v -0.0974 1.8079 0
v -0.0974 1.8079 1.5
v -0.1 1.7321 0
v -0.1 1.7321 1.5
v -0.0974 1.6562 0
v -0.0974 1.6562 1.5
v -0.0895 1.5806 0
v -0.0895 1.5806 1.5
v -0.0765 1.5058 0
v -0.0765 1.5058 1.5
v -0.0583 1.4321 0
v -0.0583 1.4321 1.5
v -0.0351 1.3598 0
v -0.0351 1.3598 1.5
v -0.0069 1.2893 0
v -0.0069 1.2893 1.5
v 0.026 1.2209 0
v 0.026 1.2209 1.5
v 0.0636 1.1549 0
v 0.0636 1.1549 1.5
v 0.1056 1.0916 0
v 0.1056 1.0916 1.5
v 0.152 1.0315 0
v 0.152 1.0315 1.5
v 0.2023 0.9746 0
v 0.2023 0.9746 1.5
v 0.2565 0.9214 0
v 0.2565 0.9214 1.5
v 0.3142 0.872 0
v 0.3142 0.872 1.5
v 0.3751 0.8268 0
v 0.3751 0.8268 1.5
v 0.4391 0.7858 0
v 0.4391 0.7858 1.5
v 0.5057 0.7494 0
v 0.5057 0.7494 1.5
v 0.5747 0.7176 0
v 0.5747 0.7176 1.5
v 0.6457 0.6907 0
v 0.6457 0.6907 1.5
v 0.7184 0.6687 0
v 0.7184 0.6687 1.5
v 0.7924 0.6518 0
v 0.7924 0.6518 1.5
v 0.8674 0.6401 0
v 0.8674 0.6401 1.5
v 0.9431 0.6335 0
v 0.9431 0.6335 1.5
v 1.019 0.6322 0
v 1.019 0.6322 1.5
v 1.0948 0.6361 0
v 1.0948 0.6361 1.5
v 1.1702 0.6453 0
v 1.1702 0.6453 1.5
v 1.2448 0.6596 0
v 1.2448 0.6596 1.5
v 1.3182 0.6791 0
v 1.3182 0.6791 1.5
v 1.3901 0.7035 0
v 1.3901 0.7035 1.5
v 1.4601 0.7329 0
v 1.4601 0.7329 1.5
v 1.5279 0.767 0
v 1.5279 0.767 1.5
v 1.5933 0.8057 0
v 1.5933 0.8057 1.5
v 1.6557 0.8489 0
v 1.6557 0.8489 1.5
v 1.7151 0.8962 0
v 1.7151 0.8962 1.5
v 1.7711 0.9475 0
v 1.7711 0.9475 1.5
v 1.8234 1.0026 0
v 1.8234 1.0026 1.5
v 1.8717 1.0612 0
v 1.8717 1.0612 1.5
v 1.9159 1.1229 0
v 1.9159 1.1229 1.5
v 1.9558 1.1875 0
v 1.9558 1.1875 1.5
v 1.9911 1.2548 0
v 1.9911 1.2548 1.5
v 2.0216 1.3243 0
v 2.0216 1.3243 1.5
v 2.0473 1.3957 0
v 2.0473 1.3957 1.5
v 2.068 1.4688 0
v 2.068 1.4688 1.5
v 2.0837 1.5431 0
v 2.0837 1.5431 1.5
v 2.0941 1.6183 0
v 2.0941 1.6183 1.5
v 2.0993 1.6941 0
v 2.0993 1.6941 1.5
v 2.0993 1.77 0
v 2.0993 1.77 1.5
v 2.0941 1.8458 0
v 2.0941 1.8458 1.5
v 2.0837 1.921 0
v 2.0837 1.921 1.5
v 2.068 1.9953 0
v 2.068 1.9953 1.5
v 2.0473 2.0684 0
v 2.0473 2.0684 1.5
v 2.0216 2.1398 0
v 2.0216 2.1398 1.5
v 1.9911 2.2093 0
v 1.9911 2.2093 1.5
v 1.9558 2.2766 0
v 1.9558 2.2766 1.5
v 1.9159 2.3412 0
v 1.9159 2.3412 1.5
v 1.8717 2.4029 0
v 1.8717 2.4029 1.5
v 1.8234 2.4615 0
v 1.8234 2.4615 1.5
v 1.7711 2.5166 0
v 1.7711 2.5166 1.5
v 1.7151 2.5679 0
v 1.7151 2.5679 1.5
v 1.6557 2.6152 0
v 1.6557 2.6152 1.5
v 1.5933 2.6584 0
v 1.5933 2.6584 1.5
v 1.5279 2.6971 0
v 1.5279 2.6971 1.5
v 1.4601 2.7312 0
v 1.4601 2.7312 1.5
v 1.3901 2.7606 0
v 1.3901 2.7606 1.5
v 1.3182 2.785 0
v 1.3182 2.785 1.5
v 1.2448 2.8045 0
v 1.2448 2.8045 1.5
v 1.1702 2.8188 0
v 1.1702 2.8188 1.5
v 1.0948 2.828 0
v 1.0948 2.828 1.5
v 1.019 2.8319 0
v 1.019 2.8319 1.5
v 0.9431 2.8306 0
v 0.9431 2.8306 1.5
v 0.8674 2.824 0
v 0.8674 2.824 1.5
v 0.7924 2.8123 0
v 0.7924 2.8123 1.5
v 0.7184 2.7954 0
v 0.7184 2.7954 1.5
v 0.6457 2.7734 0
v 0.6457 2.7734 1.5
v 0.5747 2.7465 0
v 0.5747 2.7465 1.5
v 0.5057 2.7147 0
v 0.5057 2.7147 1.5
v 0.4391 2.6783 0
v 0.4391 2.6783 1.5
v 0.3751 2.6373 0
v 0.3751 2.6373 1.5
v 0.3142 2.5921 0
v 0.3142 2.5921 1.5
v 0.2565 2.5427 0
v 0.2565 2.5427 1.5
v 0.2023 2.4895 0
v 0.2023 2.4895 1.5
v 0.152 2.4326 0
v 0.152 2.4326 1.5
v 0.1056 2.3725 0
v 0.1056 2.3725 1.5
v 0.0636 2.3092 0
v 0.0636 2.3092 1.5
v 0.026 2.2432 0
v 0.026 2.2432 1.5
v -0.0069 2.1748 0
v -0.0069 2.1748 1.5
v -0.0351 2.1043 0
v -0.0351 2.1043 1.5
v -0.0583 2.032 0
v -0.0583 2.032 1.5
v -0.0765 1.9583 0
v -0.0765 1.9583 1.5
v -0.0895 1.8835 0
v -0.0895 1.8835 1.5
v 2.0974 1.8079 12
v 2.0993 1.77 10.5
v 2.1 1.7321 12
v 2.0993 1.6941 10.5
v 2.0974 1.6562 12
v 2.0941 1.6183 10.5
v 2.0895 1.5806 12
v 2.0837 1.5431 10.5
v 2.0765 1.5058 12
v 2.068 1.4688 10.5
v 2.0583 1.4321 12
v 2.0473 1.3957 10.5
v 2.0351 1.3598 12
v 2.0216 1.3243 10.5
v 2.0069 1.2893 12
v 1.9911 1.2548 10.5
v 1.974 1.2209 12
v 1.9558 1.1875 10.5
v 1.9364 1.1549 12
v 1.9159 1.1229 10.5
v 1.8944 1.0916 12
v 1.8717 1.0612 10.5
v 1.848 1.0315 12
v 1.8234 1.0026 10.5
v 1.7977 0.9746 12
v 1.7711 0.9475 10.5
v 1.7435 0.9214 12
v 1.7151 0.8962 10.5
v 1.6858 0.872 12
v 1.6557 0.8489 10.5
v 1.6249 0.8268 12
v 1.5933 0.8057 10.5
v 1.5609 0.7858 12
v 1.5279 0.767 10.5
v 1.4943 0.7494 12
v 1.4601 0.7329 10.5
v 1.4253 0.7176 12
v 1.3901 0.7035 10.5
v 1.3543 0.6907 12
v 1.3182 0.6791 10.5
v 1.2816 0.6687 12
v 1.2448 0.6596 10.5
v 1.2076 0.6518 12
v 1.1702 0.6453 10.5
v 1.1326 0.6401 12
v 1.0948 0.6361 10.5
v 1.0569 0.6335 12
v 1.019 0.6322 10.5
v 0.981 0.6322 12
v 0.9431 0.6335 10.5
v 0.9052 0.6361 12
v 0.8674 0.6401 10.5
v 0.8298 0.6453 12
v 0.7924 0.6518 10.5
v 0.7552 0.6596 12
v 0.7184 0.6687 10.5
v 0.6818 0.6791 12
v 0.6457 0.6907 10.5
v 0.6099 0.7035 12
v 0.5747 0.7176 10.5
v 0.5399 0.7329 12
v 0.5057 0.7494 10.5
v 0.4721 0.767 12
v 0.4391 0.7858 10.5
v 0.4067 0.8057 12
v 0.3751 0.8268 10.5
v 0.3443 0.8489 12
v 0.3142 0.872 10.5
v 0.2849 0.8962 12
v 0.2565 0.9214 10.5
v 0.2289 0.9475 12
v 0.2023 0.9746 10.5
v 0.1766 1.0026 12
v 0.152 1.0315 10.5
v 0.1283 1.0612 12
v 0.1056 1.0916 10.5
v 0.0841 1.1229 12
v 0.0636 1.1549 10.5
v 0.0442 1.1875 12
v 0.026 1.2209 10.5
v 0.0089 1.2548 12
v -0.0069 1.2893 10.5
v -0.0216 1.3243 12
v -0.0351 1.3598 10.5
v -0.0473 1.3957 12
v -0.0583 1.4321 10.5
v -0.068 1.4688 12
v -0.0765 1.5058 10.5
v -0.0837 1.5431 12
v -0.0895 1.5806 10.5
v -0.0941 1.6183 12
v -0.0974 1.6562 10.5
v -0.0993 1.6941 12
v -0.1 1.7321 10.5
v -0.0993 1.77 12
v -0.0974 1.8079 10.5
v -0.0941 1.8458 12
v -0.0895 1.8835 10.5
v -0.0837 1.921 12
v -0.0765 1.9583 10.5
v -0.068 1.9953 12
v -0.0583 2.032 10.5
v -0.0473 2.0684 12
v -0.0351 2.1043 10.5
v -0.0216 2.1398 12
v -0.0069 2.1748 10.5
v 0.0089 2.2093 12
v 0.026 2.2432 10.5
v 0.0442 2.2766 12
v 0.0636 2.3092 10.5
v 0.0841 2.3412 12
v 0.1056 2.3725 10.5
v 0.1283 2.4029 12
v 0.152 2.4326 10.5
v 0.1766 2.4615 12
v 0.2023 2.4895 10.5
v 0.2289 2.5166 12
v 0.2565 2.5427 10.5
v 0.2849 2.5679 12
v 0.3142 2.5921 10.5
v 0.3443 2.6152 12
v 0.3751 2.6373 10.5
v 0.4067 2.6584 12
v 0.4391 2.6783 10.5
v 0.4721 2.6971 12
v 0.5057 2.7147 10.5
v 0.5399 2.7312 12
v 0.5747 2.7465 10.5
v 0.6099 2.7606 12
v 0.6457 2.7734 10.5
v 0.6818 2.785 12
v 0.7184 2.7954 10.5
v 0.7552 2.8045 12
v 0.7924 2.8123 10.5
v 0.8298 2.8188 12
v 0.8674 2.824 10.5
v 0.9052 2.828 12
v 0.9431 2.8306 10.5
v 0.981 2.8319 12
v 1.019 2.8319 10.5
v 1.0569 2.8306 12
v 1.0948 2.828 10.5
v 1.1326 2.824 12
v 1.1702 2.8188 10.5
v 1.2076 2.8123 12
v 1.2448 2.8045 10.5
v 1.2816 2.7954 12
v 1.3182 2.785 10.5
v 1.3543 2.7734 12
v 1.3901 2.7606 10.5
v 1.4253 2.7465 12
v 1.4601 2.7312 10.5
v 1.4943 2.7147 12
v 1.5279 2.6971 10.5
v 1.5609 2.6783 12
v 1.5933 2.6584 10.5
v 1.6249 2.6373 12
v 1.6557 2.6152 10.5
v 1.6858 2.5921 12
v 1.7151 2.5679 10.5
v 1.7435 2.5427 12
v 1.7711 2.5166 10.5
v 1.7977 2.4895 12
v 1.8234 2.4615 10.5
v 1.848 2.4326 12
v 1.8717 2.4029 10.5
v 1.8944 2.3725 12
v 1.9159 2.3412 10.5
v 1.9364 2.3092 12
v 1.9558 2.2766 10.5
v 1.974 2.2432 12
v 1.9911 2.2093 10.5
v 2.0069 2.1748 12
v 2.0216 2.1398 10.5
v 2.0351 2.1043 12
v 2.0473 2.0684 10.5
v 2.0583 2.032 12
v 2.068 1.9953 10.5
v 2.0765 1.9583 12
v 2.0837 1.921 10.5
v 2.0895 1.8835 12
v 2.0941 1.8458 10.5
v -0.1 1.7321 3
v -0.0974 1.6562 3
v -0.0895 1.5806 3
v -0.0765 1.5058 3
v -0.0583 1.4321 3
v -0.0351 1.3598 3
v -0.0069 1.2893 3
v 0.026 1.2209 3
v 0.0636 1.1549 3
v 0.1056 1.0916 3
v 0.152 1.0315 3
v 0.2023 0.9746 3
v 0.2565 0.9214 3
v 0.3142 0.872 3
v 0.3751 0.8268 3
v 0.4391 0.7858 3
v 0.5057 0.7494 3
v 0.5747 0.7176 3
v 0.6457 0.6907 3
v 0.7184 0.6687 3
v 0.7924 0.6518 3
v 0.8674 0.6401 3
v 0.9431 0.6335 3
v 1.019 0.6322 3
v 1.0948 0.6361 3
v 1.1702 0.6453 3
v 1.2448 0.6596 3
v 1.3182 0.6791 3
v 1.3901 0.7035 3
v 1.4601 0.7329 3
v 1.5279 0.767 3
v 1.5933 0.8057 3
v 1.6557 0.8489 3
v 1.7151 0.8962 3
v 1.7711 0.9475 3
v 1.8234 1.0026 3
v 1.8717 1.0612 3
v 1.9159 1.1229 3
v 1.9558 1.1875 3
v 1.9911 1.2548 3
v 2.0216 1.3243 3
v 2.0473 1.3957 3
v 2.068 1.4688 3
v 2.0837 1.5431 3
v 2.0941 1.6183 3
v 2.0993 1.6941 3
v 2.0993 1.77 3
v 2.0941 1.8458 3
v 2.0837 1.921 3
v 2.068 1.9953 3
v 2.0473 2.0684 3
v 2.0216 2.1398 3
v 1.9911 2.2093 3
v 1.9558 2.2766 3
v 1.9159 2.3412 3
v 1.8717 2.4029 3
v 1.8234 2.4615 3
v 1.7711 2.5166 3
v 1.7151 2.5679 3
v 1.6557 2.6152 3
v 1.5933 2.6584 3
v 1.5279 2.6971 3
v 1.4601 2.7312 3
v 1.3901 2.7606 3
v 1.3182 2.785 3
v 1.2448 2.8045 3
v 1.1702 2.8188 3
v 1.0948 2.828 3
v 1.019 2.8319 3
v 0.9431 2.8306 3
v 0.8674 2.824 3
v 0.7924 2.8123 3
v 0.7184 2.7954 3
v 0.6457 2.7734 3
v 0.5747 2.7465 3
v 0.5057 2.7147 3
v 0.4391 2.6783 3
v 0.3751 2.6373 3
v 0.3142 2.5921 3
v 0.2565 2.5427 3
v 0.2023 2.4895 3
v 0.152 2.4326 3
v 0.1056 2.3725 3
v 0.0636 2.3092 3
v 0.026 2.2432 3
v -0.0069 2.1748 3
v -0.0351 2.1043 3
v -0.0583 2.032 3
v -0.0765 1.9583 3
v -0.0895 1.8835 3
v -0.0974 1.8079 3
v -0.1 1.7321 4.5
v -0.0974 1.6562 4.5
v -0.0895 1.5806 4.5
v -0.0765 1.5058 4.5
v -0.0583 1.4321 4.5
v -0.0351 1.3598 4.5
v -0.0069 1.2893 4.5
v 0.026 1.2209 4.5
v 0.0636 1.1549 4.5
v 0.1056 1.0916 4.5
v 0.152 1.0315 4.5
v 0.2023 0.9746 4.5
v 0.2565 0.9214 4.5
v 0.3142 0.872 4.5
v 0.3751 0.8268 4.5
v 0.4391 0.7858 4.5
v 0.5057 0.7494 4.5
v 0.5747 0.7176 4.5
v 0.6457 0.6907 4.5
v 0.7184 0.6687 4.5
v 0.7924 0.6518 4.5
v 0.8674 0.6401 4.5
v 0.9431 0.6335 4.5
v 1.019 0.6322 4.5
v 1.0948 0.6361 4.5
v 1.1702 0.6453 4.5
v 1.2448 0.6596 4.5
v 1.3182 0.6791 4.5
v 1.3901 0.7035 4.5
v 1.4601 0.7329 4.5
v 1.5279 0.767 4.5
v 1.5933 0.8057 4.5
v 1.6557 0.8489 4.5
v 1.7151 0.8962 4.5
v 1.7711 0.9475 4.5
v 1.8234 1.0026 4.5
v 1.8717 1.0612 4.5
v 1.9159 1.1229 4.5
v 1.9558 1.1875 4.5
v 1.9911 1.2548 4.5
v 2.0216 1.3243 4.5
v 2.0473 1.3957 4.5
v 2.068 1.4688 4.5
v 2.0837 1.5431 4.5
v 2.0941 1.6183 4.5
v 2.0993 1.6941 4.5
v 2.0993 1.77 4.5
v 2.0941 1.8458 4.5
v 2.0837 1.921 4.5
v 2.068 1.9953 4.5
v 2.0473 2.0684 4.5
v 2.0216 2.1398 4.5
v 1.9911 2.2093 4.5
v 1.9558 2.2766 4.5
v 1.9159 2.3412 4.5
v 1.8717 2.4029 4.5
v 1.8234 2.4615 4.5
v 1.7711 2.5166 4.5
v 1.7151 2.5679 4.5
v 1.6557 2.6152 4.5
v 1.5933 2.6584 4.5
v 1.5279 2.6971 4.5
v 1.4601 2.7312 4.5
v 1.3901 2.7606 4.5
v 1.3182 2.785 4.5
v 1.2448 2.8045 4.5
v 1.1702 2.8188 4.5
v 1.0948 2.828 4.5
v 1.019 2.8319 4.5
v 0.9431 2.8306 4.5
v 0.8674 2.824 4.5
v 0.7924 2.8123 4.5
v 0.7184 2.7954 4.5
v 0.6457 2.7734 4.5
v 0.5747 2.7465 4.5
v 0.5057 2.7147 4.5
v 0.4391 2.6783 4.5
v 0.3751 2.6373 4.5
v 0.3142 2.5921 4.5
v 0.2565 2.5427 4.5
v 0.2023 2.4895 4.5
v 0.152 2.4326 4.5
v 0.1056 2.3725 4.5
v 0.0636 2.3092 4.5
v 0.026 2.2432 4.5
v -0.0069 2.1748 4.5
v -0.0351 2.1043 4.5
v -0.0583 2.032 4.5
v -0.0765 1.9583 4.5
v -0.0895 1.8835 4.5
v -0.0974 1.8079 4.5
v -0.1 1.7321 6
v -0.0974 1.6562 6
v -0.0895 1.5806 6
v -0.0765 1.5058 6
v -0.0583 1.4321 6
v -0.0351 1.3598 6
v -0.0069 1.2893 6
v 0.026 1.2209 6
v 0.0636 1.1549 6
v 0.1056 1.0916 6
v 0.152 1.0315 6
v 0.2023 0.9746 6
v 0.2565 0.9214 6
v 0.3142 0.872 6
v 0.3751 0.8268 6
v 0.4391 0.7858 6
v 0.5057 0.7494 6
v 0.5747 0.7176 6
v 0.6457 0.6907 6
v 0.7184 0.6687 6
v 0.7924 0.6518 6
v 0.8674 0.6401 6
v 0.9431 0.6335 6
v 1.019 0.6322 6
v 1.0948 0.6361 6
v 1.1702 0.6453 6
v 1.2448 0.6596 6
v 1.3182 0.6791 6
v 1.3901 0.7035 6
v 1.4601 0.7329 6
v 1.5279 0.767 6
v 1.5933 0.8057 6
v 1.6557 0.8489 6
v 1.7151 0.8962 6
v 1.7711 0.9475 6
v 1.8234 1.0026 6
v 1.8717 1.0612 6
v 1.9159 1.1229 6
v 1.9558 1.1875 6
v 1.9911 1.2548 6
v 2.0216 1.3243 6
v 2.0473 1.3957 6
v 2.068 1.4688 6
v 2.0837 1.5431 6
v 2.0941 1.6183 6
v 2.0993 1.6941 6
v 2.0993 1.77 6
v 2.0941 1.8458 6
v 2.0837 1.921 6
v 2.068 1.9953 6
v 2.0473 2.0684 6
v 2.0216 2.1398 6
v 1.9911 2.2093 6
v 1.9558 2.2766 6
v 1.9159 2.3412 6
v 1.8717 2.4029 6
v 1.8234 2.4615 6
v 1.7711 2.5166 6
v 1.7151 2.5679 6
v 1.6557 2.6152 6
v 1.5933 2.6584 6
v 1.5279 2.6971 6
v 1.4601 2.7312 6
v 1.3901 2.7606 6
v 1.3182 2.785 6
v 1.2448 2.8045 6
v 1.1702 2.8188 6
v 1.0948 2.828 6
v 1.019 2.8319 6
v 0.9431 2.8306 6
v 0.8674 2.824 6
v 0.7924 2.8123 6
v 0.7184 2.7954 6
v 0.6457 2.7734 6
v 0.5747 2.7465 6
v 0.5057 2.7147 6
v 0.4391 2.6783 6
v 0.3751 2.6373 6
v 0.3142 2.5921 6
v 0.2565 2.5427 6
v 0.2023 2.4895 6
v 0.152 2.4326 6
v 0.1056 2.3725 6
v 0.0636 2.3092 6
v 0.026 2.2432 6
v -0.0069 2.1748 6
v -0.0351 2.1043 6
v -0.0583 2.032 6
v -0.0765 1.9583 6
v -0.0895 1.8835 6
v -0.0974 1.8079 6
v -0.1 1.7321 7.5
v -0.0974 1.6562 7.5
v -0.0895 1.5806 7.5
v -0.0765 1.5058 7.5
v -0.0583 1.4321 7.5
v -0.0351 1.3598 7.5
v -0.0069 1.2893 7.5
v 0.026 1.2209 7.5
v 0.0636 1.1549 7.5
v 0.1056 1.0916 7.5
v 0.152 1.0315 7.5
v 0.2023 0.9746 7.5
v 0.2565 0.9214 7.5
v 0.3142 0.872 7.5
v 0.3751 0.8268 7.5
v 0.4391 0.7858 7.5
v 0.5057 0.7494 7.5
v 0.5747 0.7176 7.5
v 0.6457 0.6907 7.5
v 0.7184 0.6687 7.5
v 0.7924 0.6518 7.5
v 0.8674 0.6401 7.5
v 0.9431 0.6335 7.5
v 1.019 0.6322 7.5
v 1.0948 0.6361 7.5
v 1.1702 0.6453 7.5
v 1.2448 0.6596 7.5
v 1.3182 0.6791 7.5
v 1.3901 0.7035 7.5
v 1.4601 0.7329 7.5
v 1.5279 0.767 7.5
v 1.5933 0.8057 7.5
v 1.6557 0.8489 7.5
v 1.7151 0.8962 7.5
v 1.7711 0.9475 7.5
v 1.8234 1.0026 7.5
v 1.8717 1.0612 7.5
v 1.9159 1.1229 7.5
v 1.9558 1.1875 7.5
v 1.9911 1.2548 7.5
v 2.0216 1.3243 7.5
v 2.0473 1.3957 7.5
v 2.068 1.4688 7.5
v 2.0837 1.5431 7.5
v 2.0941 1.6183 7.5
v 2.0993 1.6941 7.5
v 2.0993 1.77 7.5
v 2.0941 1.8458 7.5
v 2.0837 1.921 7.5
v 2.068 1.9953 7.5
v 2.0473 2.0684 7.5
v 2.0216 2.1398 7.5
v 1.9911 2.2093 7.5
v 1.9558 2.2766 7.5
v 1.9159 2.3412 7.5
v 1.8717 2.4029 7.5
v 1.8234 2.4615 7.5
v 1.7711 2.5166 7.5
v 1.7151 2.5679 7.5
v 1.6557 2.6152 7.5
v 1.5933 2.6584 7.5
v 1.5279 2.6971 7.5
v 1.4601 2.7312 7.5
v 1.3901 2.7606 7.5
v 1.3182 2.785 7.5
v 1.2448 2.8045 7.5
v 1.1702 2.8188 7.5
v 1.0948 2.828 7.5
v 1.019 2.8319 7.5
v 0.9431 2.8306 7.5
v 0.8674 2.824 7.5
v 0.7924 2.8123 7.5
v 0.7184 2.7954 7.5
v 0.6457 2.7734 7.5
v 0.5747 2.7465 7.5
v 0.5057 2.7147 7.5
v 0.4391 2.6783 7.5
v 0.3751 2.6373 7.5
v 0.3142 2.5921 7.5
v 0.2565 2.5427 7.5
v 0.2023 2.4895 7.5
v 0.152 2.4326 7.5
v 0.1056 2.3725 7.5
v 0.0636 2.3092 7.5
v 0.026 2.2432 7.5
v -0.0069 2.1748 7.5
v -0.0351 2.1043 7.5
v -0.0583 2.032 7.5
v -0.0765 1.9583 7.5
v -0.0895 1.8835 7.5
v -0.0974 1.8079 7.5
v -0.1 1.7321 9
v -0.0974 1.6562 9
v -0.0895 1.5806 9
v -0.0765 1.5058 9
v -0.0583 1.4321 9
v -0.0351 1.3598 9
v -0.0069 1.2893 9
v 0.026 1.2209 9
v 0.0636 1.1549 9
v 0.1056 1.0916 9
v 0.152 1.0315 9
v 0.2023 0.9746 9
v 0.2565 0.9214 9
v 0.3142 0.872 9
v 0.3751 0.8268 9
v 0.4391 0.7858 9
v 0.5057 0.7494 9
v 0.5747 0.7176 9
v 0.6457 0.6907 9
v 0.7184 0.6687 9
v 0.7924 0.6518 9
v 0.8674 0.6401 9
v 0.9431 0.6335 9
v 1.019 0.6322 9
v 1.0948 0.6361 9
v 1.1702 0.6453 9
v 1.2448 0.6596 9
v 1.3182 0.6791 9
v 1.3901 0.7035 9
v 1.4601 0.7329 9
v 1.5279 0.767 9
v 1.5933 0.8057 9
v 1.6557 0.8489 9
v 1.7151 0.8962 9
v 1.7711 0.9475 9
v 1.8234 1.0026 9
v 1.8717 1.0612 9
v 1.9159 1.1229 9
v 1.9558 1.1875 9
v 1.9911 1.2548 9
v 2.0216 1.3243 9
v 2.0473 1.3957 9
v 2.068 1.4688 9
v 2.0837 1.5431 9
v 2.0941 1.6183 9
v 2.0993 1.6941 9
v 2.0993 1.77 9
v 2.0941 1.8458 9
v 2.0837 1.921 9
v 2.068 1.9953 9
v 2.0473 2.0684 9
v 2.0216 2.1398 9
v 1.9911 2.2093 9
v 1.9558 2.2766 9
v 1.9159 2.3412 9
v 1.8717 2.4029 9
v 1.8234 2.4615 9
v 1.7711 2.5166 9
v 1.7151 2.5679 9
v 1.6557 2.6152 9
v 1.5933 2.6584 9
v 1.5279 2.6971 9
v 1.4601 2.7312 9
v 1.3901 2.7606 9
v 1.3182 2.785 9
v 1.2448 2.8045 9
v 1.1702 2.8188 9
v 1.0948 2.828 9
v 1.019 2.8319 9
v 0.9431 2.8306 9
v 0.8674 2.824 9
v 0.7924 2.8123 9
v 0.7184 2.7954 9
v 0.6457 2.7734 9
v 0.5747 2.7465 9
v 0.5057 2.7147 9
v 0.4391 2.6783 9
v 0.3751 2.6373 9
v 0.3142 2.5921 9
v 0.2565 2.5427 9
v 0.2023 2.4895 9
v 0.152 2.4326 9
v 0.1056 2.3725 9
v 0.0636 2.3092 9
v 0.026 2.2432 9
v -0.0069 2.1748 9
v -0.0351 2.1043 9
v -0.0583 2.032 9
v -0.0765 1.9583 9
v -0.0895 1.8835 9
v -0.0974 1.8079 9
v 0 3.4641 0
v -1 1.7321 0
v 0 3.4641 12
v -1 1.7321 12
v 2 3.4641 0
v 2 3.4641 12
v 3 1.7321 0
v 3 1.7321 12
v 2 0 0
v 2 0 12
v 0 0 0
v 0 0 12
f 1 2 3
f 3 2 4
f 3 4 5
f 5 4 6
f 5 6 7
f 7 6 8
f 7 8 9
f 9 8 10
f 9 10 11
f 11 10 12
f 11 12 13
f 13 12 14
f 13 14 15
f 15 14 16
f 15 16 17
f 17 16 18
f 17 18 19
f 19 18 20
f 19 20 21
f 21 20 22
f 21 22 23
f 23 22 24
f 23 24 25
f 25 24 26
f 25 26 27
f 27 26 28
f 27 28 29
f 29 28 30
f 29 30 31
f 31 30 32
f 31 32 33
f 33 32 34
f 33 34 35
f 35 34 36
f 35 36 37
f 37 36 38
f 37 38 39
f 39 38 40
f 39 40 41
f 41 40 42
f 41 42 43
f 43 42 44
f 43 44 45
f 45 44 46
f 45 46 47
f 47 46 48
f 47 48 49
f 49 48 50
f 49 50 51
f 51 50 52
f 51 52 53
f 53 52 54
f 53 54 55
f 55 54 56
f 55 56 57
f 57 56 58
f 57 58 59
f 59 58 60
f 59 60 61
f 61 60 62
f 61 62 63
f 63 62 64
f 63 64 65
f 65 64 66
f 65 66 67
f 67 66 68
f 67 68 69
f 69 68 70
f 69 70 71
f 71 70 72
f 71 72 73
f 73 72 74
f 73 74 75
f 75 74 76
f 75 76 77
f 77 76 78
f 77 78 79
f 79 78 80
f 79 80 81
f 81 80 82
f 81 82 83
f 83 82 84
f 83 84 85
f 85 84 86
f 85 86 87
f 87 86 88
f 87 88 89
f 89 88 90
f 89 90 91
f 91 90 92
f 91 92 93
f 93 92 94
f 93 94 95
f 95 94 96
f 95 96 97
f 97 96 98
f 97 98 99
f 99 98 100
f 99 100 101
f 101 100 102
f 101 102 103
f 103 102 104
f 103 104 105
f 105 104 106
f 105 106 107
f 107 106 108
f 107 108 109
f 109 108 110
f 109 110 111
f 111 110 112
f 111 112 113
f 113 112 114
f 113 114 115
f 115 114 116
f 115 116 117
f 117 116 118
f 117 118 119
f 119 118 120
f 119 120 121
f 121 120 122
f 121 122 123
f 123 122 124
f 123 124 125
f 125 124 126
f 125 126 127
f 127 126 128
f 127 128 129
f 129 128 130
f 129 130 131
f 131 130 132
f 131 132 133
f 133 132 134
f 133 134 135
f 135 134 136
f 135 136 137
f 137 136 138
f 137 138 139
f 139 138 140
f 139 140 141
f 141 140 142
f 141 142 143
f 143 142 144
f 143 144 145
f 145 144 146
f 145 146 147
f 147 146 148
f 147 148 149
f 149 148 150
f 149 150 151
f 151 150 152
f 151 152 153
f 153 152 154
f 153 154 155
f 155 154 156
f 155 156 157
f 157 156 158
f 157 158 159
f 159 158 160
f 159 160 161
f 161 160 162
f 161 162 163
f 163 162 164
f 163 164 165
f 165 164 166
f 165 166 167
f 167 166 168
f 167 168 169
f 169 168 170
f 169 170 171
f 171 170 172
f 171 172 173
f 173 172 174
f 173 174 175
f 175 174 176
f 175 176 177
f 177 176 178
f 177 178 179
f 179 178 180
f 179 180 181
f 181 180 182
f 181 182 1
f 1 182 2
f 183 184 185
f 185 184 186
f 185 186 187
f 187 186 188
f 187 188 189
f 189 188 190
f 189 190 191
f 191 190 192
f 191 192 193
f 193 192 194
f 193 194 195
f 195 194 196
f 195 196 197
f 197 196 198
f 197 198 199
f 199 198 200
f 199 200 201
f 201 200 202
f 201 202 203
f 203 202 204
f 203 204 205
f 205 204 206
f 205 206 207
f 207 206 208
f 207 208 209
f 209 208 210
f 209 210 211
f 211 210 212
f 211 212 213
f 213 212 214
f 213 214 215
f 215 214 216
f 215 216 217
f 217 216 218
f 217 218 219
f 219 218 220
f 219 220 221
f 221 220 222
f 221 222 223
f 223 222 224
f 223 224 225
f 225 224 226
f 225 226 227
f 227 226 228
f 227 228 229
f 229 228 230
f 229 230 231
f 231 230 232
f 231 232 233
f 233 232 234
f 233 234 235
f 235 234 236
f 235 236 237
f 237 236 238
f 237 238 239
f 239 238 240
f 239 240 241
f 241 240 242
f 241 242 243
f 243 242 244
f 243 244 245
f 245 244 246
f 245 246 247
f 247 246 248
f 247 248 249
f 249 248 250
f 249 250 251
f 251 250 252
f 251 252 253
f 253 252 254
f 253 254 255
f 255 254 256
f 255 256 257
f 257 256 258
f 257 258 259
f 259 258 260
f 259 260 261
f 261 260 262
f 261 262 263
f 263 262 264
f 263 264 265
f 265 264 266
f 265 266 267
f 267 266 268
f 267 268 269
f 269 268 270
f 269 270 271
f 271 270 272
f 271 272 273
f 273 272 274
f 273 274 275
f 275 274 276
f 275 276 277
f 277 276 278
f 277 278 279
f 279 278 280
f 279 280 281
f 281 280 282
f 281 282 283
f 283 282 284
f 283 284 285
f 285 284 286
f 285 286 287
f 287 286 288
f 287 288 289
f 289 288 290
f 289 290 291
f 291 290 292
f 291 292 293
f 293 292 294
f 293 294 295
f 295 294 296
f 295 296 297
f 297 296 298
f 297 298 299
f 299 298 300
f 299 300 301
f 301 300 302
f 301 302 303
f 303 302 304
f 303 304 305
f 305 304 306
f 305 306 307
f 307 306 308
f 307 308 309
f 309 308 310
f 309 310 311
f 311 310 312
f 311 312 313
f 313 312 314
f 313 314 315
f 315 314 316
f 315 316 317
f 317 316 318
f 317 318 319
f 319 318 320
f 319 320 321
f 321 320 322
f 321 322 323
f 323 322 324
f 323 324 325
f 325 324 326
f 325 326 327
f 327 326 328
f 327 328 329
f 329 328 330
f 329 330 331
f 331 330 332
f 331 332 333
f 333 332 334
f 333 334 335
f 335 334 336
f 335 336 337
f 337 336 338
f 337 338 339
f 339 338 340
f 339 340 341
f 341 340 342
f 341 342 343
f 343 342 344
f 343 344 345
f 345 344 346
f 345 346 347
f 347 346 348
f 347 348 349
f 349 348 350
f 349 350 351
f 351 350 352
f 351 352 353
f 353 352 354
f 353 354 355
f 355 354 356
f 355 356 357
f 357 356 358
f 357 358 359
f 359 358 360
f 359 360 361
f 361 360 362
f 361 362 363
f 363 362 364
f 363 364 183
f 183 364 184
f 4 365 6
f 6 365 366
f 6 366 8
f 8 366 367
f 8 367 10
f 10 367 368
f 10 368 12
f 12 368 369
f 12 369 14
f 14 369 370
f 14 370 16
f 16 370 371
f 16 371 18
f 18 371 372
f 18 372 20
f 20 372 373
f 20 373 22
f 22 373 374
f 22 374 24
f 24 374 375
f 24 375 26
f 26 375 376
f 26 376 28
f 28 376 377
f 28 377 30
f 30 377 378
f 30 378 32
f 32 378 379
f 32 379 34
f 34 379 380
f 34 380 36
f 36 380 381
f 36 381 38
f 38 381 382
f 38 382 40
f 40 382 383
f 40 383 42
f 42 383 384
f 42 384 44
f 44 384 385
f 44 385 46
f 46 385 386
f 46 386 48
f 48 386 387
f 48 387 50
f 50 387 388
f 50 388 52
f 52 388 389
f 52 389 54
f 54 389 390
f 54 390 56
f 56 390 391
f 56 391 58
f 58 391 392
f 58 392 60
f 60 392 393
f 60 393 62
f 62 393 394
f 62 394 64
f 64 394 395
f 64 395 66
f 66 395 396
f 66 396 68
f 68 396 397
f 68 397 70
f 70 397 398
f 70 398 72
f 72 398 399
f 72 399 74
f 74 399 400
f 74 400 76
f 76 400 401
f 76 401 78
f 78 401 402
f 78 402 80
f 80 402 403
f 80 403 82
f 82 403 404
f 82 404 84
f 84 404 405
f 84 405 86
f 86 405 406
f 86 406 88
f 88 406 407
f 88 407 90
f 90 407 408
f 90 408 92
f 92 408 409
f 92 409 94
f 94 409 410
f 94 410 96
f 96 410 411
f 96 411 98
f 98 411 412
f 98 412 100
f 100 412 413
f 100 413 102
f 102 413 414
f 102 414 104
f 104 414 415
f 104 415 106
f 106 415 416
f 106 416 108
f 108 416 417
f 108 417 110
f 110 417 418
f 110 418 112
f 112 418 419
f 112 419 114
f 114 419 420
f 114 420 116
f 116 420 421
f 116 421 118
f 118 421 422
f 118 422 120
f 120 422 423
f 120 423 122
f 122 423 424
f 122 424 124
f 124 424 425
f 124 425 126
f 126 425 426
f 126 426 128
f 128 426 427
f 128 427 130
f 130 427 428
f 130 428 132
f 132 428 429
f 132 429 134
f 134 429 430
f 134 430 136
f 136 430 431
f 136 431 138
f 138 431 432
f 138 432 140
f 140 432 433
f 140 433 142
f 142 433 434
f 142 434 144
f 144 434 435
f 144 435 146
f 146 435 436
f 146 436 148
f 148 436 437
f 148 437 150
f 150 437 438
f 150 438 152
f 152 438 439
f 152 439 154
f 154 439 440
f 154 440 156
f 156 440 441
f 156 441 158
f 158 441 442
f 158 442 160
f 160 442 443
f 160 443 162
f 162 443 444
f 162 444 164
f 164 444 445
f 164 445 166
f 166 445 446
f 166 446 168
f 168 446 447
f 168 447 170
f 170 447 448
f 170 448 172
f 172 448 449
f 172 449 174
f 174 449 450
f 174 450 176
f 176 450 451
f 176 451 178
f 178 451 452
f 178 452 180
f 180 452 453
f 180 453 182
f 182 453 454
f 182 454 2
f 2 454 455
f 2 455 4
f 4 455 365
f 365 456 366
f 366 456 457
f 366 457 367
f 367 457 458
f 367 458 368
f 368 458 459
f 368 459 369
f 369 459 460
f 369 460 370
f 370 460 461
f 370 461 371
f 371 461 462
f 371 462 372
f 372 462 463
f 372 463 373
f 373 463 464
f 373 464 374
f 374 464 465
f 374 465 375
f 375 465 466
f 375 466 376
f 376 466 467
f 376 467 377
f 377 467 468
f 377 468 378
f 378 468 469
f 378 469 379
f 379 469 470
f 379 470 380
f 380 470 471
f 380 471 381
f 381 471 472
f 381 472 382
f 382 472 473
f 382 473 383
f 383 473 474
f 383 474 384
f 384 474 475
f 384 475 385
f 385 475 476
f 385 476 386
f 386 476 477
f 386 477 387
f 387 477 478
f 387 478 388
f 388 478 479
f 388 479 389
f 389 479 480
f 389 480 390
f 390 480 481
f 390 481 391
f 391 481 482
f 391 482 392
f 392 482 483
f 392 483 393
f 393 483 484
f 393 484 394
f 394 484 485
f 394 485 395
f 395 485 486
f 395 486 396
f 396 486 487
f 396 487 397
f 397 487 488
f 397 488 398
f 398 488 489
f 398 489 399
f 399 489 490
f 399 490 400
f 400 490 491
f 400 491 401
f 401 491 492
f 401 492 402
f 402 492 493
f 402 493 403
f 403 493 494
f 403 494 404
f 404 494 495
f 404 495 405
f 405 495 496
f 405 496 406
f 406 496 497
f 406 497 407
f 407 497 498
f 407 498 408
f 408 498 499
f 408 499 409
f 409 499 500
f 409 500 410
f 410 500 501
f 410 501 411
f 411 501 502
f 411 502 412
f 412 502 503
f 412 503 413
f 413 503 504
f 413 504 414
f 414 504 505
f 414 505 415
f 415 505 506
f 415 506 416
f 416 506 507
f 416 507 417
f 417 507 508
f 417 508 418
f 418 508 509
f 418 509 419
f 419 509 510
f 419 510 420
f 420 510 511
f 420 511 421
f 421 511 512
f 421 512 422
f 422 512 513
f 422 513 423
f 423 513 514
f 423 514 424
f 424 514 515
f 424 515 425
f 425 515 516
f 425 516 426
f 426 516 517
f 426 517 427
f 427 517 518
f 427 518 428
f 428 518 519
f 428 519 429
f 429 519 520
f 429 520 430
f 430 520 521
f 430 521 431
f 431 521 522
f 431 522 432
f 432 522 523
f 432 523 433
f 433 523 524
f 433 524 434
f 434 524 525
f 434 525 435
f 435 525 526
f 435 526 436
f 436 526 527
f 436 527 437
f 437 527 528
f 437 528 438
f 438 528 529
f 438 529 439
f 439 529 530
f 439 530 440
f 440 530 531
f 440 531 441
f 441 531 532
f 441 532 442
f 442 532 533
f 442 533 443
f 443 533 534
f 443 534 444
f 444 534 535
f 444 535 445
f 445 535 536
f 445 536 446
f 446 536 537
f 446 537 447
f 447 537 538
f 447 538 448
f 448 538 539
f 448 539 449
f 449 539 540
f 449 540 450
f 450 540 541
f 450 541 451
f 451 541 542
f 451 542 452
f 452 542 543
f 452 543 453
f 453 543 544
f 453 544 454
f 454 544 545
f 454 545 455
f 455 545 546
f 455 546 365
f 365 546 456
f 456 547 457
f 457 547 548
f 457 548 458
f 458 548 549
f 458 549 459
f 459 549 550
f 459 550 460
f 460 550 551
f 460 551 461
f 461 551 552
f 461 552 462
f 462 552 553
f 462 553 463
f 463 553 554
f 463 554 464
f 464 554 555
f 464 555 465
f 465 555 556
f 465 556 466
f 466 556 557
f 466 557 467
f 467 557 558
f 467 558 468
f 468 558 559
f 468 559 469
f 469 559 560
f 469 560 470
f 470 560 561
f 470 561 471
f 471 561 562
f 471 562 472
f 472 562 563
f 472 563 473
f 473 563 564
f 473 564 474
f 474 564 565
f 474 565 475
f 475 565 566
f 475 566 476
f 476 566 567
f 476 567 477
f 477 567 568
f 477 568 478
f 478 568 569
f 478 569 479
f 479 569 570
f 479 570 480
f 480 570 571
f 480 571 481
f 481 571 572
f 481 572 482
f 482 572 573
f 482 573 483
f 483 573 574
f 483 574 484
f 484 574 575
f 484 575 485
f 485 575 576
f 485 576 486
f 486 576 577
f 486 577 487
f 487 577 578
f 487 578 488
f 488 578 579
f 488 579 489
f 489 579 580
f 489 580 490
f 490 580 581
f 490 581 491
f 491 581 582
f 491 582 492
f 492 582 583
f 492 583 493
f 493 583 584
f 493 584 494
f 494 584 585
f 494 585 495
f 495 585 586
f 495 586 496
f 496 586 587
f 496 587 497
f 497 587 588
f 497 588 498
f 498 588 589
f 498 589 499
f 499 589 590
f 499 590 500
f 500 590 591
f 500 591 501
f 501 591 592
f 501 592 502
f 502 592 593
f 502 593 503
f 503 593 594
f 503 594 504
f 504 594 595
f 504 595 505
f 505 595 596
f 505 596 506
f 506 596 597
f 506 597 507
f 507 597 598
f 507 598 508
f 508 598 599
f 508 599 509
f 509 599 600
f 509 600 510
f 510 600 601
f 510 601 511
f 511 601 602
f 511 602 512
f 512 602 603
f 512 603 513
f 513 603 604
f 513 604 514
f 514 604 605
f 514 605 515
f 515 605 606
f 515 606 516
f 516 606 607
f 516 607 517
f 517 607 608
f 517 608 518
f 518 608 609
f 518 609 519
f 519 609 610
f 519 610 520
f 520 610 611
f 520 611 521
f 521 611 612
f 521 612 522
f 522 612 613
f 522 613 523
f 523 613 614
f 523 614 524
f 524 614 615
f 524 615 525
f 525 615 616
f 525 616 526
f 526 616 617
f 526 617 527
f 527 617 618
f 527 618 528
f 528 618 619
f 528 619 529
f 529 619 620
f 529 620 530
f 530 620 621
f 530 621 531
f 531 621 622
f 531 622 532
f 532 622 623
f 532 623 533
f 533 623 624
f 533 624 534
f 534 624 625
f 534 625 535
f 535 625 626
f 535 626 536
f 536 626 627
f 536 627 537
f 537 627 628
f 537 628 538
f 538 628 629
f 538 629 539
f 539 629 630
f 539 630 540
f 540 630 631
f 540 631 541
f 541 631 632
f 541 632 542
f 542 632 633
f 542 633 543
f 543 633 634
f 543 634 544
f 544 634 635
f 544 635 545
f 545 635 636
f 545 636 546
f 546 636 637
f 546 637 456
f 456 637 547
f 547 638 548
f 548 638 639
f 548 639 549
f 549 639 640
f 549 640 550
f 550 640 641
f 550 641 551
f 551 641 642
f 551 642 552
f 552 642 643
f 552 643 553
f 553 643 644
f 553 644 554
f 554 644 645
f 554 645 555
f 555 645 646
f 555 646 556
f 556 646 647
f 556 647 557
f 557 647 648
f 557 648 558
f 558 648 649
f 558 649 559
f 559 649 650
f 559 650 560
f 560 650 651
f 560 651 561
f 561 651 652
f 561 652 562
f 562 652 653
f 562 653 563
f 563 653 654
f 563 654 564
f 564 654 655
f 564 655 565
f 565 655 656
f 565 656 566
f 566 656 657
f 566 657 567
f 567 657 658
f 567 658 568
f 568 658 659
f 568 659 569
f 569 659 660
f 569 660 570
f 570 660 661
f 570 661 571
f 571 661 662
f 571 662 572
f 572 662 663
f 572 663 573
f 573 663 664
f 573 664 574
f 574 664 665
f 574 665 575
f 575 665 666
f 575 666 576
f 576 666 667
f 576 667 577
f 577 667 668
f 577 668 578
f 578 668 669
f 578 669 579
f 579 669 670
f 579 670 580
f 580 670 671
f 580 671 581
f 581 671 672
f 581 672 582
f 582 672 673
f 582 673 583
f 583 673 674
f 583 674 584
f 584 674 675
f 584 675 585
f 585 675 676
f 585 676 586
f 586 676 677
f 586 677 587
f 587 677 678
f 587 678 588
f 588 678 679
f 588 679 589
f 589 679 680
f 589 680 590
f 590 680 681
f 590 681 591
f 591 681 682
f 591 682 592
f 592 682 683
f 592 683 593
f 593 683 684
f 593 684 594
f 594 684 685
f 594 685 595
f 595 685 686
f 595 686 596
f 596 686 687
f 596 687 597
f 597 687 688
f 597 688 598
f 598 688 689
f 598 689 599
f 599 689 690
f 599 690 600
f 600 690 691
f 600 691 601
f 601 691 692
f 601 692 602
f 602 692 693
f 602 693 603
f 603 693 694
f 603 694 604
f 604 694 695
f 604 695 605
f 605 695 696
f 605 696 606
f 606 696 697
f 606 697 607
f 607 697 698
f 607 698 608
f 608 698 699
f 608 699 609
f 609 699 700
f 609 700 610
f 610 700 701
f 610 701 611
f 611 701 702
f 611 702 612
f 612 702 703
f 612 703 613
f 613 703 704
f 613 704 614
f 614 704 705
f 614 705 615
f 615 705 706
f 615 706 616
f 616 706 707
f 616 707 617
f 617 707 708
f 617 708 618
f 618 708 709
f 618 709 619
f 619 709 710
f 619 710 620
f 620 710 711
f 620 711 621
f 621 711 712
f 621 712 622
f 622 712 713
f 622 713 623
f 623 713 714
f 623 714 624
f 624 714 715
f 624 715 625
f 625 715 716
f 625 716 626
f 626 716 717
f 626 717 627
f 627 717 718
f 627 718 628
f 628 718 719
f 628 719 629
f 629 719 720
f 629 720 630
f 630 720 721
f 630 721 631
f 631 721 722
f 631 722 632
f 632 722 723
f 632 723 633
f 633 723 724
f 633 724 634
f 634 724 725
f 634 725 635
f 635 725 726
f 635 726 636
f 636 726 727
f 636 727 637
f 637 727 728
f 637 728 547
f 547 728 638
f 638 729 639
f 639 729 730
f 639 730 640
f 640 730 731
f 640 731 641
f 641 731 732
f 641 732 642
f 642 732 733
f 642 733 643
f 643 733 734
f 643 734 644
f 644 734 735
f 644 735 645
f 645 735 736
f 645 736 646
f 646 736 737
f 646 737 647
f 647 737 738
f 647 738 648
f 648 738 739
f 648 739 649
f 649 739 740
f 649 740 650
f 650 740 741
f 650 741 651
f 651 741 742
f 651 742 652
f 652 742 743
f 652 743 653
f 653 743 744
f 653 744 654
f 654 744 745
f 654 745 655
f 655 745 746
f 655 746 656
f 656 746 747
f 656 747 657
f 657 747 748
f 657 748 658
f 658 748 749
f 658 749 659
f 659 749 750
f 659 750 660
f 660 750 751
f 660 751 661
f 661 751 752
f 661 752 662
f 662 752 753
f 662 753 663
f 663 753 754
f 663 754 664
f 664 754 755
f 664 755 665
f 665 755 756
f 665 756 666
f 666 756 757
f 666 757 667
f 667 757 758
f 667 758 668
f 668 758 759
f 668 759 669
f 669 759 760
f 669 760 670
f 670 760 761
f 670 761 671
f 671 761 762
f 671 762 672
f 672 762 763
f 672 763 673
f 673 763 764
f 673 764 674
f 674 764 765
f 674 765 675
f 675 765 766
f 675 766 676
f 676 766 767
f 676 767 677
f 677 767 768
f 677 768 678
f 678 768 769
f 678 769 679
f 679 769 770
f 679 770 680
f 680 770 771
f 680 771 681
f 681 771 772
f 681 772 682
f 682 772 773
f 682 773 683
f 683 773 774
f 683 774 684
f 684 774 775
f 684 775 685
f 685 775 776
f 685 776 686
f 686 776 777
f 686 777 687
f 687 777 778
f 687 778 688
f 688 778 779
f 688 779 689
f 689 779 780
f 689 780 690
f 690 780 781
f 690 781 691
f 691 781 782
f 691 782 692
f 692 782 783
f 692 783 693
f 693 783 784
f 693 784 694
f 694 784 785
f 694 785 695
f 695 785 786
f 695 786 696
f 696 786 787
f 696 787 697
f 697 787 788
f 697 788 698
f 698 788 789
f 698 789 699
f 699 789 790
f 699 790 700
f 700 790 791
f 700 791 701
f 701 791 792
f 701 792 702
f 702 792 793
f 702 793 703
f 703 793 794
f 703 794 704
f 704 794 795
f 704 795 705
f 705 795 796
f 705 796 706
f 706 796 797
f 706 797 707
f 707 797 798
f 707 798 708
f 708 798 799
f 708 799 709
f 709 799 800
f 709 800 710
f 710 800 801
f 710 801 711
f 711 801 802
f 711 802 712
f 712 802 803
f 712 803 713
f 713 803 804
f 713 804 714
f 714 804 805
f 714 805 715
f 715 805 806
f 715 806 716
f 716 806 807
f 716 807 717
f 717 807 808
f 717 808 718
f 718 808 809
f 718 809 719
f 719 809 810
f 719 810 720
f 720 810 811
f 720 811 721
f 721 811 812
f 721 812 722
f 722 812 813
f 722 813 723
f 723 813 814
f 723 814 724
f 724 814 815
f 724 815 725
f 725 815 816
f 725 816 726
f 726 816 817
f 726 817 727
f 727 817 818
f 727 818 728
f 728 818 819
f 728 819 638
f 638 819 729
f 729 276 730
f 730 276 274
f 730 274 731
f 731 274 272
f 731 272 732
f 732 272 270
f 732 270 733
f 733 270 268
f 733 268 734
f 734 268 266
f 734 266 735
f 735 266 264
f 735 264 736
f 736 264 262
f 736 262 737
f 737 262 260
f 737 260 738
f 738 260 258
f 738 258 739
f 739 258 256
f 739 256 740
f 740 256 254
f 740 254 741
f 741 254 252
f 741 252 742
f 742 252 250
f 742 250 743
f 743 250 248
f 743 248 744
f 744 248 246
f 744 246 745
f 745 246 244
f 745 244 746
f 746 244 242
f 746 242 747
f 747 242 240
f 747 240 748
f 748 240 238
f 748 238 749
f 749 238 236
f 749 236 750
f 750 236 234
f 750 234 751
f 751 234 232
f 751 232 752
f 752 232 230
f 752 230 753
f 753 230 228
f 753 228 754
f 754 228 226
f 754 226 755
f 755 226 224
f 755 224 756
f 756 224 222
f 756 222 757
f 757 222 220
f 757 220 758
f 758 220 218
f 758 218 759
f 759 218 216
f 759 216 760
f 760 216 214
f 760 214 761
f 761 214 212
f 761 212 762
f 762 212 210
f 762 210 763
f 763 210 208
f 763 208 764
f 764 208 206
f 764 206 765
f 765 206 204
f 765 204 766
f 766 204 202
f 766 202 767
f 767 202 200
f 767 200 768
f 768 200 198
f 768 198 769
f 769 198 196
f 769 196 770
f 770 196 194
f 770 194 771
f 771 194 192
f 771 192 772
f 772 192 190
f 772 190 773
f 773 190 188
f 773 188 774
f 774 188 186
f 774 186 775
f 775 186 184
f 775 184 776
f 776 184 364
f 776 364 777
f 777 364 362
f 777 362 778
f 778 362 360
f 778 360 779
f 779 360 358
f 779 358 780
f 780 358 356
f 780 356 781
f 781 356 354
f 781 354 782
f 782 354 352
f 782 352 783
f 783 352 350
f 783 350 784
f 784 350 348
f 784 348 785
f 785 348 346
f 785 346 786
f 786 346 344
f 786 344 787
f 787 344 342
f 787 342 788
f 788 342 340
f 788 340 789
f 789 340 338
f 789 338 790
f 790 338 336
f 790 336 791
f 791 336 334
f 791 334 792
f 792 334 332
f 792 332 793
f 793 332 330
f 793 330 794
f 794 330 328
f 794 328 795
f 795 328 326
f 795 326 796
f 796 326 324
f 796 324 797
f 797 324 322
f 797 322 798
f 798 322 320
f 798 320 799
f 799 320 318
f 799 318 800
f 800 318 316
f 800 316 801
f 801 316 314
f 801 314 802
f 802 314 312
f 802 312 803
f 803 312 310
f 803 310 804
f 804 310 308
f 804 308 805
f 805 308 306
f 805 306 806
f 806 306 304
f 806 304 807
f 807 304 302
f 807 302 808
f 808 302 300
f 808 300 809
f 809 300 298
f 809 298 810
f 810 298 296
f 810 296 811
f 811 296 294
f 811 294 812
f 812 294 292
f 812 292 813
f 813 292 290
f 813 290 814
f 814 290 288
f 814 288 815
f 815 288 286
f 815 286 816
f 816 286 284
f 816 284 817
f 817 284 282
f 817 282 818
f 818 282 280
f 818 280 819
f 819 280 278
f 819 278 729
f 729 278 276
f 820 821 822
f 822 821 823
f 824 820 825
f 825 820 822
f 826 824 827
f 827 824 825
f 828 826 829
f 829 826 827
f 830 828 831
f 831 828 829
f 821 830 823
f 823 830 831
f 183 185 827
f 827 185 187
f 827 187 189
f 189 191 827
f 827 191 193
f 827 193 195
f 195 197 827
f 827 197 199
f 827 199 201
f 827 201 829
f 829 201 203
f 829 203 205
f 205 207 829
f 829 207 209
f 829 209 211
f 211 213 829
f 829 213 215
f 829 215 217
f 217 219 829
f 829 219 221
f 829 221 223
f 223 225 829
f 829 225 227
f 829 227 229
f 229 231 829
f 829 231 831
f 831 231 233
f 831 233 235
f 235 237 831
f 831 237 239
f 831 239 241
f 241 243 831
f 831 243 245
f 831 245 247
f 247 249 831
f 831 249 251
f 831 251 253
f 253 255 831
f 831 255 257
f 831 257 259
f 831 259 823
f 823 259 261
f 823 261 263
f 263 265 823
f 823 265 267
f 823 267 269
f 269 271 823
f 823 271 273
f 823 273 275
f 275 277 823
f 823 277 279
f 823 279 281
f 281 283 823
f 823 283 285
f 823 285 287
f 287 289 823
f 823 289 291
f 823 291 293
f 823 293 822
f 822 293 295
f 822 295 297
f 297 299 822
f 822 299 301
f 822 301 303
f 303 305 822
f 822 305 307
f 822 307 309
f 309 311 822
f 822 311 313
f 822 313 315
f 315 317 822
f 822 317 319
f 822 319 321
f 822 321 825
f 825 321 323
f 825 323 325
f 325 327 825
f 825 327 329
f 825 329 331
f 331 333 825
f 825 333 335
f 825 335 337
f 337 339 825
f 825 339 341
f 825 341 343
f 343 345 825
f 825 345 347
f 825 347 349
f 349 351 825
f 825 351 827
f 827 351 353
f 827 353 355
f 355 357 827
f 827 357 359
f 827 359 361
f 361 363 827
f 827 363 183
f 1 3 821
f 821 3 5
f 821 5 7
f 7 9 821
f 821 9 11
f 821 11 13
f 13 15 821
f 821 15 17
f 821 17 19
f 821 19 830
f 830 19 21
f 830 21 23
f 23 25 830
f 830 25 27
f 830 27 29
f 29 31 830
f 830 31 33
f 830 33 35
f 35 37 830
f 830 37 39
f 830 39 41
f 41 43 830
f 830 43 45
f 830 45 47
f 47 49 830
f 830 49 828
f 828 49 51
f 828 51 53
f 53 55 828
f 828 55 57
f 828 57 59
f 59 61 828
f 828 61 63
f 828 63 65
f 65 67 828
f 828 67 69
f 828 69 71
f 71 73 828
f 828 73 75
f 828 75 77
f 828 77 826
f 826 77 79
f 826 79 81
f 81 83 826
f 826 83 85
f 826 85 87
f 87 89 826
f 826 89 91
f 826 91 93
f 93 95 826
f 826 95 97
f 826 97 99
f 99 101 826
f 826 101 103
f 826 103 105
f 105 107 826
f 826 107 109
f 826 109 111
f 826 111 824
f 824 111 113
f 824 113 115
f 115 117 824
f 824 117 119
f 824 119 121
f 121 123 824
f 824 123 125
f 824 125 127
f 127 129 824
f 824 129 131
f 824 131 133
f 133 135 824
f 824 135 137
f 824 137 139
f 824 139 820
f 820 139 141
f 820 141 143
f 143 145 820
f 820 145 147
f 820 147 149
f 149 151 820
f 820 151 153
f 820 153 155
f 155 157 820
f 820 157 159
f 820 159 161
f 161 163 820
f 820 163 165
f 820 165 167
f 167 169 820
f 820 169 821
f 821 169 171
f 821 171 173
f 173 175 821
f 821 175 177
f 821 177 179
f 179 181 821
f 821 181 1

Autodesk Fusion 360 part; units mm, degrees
sketch "Szkic1" plane through (0, 0, 0) normal (0, 0, 1) x (1, 0, 0)
  line L0 (0, 0) -> (2, 0)
  line L1 (2, 0) -> (3, 1.7321)
  line L2 (3, 1.7321) -> (2, 3.4641)
  line L3 (2, 3.4641) -> (0, 3.4641)
  line L4 (0, 3.4641) -> (-1, 1.7321)
  line L5 (-1, 1.7321) -> (0, 0)
  point P0 (1, 1.7321)
extrude "Wyciągnięcie proste1" add sketch "Szkic1" along normal blind 12
sketch "Szkic2" plane through (0, 0, 12) normal (0, 0, 1) x (-1, 0, 0)
  line L0 (1, -1.7321) -> (0, 0)
  line L1 (0, 0) -> (-2, 0)
  line L2 (-2, 0) -> (-3, -1.7321)
  line L3 (-3, -1.7321) -> (-2, -3.4641)
  line L4 (-2, -3.4641) -> (0, -3.4641)
  line L5 (0, -3.4641) -> (1, -1.7321)
  line L6 (1, -1.7321) -> (0, 0)
  line L7 (0, 0) -> (-2, 0)
  line L8 (-2, 0) -> (-3, -1.7321)
  line L9 (-3, -1.7321) -> (-2, -3.4641)
  line L10 (-2, -3.4641) -> (0, -3.4641)
  line L11 (0, -3.4641) -> (1, -1.7321)
  line L12 (1, -1.7321) -> (-3, -1.7321)
  line L13 (-2, -3.4641) -> (0, 0)
  circle A0 centre (-1, -1.7321) radius 1.1
  dimension "d3" = 2.2
hole "Otwór1" at (1, 1.7321, 12) direction (0, 0, -1) diameter 2.2 end through all
